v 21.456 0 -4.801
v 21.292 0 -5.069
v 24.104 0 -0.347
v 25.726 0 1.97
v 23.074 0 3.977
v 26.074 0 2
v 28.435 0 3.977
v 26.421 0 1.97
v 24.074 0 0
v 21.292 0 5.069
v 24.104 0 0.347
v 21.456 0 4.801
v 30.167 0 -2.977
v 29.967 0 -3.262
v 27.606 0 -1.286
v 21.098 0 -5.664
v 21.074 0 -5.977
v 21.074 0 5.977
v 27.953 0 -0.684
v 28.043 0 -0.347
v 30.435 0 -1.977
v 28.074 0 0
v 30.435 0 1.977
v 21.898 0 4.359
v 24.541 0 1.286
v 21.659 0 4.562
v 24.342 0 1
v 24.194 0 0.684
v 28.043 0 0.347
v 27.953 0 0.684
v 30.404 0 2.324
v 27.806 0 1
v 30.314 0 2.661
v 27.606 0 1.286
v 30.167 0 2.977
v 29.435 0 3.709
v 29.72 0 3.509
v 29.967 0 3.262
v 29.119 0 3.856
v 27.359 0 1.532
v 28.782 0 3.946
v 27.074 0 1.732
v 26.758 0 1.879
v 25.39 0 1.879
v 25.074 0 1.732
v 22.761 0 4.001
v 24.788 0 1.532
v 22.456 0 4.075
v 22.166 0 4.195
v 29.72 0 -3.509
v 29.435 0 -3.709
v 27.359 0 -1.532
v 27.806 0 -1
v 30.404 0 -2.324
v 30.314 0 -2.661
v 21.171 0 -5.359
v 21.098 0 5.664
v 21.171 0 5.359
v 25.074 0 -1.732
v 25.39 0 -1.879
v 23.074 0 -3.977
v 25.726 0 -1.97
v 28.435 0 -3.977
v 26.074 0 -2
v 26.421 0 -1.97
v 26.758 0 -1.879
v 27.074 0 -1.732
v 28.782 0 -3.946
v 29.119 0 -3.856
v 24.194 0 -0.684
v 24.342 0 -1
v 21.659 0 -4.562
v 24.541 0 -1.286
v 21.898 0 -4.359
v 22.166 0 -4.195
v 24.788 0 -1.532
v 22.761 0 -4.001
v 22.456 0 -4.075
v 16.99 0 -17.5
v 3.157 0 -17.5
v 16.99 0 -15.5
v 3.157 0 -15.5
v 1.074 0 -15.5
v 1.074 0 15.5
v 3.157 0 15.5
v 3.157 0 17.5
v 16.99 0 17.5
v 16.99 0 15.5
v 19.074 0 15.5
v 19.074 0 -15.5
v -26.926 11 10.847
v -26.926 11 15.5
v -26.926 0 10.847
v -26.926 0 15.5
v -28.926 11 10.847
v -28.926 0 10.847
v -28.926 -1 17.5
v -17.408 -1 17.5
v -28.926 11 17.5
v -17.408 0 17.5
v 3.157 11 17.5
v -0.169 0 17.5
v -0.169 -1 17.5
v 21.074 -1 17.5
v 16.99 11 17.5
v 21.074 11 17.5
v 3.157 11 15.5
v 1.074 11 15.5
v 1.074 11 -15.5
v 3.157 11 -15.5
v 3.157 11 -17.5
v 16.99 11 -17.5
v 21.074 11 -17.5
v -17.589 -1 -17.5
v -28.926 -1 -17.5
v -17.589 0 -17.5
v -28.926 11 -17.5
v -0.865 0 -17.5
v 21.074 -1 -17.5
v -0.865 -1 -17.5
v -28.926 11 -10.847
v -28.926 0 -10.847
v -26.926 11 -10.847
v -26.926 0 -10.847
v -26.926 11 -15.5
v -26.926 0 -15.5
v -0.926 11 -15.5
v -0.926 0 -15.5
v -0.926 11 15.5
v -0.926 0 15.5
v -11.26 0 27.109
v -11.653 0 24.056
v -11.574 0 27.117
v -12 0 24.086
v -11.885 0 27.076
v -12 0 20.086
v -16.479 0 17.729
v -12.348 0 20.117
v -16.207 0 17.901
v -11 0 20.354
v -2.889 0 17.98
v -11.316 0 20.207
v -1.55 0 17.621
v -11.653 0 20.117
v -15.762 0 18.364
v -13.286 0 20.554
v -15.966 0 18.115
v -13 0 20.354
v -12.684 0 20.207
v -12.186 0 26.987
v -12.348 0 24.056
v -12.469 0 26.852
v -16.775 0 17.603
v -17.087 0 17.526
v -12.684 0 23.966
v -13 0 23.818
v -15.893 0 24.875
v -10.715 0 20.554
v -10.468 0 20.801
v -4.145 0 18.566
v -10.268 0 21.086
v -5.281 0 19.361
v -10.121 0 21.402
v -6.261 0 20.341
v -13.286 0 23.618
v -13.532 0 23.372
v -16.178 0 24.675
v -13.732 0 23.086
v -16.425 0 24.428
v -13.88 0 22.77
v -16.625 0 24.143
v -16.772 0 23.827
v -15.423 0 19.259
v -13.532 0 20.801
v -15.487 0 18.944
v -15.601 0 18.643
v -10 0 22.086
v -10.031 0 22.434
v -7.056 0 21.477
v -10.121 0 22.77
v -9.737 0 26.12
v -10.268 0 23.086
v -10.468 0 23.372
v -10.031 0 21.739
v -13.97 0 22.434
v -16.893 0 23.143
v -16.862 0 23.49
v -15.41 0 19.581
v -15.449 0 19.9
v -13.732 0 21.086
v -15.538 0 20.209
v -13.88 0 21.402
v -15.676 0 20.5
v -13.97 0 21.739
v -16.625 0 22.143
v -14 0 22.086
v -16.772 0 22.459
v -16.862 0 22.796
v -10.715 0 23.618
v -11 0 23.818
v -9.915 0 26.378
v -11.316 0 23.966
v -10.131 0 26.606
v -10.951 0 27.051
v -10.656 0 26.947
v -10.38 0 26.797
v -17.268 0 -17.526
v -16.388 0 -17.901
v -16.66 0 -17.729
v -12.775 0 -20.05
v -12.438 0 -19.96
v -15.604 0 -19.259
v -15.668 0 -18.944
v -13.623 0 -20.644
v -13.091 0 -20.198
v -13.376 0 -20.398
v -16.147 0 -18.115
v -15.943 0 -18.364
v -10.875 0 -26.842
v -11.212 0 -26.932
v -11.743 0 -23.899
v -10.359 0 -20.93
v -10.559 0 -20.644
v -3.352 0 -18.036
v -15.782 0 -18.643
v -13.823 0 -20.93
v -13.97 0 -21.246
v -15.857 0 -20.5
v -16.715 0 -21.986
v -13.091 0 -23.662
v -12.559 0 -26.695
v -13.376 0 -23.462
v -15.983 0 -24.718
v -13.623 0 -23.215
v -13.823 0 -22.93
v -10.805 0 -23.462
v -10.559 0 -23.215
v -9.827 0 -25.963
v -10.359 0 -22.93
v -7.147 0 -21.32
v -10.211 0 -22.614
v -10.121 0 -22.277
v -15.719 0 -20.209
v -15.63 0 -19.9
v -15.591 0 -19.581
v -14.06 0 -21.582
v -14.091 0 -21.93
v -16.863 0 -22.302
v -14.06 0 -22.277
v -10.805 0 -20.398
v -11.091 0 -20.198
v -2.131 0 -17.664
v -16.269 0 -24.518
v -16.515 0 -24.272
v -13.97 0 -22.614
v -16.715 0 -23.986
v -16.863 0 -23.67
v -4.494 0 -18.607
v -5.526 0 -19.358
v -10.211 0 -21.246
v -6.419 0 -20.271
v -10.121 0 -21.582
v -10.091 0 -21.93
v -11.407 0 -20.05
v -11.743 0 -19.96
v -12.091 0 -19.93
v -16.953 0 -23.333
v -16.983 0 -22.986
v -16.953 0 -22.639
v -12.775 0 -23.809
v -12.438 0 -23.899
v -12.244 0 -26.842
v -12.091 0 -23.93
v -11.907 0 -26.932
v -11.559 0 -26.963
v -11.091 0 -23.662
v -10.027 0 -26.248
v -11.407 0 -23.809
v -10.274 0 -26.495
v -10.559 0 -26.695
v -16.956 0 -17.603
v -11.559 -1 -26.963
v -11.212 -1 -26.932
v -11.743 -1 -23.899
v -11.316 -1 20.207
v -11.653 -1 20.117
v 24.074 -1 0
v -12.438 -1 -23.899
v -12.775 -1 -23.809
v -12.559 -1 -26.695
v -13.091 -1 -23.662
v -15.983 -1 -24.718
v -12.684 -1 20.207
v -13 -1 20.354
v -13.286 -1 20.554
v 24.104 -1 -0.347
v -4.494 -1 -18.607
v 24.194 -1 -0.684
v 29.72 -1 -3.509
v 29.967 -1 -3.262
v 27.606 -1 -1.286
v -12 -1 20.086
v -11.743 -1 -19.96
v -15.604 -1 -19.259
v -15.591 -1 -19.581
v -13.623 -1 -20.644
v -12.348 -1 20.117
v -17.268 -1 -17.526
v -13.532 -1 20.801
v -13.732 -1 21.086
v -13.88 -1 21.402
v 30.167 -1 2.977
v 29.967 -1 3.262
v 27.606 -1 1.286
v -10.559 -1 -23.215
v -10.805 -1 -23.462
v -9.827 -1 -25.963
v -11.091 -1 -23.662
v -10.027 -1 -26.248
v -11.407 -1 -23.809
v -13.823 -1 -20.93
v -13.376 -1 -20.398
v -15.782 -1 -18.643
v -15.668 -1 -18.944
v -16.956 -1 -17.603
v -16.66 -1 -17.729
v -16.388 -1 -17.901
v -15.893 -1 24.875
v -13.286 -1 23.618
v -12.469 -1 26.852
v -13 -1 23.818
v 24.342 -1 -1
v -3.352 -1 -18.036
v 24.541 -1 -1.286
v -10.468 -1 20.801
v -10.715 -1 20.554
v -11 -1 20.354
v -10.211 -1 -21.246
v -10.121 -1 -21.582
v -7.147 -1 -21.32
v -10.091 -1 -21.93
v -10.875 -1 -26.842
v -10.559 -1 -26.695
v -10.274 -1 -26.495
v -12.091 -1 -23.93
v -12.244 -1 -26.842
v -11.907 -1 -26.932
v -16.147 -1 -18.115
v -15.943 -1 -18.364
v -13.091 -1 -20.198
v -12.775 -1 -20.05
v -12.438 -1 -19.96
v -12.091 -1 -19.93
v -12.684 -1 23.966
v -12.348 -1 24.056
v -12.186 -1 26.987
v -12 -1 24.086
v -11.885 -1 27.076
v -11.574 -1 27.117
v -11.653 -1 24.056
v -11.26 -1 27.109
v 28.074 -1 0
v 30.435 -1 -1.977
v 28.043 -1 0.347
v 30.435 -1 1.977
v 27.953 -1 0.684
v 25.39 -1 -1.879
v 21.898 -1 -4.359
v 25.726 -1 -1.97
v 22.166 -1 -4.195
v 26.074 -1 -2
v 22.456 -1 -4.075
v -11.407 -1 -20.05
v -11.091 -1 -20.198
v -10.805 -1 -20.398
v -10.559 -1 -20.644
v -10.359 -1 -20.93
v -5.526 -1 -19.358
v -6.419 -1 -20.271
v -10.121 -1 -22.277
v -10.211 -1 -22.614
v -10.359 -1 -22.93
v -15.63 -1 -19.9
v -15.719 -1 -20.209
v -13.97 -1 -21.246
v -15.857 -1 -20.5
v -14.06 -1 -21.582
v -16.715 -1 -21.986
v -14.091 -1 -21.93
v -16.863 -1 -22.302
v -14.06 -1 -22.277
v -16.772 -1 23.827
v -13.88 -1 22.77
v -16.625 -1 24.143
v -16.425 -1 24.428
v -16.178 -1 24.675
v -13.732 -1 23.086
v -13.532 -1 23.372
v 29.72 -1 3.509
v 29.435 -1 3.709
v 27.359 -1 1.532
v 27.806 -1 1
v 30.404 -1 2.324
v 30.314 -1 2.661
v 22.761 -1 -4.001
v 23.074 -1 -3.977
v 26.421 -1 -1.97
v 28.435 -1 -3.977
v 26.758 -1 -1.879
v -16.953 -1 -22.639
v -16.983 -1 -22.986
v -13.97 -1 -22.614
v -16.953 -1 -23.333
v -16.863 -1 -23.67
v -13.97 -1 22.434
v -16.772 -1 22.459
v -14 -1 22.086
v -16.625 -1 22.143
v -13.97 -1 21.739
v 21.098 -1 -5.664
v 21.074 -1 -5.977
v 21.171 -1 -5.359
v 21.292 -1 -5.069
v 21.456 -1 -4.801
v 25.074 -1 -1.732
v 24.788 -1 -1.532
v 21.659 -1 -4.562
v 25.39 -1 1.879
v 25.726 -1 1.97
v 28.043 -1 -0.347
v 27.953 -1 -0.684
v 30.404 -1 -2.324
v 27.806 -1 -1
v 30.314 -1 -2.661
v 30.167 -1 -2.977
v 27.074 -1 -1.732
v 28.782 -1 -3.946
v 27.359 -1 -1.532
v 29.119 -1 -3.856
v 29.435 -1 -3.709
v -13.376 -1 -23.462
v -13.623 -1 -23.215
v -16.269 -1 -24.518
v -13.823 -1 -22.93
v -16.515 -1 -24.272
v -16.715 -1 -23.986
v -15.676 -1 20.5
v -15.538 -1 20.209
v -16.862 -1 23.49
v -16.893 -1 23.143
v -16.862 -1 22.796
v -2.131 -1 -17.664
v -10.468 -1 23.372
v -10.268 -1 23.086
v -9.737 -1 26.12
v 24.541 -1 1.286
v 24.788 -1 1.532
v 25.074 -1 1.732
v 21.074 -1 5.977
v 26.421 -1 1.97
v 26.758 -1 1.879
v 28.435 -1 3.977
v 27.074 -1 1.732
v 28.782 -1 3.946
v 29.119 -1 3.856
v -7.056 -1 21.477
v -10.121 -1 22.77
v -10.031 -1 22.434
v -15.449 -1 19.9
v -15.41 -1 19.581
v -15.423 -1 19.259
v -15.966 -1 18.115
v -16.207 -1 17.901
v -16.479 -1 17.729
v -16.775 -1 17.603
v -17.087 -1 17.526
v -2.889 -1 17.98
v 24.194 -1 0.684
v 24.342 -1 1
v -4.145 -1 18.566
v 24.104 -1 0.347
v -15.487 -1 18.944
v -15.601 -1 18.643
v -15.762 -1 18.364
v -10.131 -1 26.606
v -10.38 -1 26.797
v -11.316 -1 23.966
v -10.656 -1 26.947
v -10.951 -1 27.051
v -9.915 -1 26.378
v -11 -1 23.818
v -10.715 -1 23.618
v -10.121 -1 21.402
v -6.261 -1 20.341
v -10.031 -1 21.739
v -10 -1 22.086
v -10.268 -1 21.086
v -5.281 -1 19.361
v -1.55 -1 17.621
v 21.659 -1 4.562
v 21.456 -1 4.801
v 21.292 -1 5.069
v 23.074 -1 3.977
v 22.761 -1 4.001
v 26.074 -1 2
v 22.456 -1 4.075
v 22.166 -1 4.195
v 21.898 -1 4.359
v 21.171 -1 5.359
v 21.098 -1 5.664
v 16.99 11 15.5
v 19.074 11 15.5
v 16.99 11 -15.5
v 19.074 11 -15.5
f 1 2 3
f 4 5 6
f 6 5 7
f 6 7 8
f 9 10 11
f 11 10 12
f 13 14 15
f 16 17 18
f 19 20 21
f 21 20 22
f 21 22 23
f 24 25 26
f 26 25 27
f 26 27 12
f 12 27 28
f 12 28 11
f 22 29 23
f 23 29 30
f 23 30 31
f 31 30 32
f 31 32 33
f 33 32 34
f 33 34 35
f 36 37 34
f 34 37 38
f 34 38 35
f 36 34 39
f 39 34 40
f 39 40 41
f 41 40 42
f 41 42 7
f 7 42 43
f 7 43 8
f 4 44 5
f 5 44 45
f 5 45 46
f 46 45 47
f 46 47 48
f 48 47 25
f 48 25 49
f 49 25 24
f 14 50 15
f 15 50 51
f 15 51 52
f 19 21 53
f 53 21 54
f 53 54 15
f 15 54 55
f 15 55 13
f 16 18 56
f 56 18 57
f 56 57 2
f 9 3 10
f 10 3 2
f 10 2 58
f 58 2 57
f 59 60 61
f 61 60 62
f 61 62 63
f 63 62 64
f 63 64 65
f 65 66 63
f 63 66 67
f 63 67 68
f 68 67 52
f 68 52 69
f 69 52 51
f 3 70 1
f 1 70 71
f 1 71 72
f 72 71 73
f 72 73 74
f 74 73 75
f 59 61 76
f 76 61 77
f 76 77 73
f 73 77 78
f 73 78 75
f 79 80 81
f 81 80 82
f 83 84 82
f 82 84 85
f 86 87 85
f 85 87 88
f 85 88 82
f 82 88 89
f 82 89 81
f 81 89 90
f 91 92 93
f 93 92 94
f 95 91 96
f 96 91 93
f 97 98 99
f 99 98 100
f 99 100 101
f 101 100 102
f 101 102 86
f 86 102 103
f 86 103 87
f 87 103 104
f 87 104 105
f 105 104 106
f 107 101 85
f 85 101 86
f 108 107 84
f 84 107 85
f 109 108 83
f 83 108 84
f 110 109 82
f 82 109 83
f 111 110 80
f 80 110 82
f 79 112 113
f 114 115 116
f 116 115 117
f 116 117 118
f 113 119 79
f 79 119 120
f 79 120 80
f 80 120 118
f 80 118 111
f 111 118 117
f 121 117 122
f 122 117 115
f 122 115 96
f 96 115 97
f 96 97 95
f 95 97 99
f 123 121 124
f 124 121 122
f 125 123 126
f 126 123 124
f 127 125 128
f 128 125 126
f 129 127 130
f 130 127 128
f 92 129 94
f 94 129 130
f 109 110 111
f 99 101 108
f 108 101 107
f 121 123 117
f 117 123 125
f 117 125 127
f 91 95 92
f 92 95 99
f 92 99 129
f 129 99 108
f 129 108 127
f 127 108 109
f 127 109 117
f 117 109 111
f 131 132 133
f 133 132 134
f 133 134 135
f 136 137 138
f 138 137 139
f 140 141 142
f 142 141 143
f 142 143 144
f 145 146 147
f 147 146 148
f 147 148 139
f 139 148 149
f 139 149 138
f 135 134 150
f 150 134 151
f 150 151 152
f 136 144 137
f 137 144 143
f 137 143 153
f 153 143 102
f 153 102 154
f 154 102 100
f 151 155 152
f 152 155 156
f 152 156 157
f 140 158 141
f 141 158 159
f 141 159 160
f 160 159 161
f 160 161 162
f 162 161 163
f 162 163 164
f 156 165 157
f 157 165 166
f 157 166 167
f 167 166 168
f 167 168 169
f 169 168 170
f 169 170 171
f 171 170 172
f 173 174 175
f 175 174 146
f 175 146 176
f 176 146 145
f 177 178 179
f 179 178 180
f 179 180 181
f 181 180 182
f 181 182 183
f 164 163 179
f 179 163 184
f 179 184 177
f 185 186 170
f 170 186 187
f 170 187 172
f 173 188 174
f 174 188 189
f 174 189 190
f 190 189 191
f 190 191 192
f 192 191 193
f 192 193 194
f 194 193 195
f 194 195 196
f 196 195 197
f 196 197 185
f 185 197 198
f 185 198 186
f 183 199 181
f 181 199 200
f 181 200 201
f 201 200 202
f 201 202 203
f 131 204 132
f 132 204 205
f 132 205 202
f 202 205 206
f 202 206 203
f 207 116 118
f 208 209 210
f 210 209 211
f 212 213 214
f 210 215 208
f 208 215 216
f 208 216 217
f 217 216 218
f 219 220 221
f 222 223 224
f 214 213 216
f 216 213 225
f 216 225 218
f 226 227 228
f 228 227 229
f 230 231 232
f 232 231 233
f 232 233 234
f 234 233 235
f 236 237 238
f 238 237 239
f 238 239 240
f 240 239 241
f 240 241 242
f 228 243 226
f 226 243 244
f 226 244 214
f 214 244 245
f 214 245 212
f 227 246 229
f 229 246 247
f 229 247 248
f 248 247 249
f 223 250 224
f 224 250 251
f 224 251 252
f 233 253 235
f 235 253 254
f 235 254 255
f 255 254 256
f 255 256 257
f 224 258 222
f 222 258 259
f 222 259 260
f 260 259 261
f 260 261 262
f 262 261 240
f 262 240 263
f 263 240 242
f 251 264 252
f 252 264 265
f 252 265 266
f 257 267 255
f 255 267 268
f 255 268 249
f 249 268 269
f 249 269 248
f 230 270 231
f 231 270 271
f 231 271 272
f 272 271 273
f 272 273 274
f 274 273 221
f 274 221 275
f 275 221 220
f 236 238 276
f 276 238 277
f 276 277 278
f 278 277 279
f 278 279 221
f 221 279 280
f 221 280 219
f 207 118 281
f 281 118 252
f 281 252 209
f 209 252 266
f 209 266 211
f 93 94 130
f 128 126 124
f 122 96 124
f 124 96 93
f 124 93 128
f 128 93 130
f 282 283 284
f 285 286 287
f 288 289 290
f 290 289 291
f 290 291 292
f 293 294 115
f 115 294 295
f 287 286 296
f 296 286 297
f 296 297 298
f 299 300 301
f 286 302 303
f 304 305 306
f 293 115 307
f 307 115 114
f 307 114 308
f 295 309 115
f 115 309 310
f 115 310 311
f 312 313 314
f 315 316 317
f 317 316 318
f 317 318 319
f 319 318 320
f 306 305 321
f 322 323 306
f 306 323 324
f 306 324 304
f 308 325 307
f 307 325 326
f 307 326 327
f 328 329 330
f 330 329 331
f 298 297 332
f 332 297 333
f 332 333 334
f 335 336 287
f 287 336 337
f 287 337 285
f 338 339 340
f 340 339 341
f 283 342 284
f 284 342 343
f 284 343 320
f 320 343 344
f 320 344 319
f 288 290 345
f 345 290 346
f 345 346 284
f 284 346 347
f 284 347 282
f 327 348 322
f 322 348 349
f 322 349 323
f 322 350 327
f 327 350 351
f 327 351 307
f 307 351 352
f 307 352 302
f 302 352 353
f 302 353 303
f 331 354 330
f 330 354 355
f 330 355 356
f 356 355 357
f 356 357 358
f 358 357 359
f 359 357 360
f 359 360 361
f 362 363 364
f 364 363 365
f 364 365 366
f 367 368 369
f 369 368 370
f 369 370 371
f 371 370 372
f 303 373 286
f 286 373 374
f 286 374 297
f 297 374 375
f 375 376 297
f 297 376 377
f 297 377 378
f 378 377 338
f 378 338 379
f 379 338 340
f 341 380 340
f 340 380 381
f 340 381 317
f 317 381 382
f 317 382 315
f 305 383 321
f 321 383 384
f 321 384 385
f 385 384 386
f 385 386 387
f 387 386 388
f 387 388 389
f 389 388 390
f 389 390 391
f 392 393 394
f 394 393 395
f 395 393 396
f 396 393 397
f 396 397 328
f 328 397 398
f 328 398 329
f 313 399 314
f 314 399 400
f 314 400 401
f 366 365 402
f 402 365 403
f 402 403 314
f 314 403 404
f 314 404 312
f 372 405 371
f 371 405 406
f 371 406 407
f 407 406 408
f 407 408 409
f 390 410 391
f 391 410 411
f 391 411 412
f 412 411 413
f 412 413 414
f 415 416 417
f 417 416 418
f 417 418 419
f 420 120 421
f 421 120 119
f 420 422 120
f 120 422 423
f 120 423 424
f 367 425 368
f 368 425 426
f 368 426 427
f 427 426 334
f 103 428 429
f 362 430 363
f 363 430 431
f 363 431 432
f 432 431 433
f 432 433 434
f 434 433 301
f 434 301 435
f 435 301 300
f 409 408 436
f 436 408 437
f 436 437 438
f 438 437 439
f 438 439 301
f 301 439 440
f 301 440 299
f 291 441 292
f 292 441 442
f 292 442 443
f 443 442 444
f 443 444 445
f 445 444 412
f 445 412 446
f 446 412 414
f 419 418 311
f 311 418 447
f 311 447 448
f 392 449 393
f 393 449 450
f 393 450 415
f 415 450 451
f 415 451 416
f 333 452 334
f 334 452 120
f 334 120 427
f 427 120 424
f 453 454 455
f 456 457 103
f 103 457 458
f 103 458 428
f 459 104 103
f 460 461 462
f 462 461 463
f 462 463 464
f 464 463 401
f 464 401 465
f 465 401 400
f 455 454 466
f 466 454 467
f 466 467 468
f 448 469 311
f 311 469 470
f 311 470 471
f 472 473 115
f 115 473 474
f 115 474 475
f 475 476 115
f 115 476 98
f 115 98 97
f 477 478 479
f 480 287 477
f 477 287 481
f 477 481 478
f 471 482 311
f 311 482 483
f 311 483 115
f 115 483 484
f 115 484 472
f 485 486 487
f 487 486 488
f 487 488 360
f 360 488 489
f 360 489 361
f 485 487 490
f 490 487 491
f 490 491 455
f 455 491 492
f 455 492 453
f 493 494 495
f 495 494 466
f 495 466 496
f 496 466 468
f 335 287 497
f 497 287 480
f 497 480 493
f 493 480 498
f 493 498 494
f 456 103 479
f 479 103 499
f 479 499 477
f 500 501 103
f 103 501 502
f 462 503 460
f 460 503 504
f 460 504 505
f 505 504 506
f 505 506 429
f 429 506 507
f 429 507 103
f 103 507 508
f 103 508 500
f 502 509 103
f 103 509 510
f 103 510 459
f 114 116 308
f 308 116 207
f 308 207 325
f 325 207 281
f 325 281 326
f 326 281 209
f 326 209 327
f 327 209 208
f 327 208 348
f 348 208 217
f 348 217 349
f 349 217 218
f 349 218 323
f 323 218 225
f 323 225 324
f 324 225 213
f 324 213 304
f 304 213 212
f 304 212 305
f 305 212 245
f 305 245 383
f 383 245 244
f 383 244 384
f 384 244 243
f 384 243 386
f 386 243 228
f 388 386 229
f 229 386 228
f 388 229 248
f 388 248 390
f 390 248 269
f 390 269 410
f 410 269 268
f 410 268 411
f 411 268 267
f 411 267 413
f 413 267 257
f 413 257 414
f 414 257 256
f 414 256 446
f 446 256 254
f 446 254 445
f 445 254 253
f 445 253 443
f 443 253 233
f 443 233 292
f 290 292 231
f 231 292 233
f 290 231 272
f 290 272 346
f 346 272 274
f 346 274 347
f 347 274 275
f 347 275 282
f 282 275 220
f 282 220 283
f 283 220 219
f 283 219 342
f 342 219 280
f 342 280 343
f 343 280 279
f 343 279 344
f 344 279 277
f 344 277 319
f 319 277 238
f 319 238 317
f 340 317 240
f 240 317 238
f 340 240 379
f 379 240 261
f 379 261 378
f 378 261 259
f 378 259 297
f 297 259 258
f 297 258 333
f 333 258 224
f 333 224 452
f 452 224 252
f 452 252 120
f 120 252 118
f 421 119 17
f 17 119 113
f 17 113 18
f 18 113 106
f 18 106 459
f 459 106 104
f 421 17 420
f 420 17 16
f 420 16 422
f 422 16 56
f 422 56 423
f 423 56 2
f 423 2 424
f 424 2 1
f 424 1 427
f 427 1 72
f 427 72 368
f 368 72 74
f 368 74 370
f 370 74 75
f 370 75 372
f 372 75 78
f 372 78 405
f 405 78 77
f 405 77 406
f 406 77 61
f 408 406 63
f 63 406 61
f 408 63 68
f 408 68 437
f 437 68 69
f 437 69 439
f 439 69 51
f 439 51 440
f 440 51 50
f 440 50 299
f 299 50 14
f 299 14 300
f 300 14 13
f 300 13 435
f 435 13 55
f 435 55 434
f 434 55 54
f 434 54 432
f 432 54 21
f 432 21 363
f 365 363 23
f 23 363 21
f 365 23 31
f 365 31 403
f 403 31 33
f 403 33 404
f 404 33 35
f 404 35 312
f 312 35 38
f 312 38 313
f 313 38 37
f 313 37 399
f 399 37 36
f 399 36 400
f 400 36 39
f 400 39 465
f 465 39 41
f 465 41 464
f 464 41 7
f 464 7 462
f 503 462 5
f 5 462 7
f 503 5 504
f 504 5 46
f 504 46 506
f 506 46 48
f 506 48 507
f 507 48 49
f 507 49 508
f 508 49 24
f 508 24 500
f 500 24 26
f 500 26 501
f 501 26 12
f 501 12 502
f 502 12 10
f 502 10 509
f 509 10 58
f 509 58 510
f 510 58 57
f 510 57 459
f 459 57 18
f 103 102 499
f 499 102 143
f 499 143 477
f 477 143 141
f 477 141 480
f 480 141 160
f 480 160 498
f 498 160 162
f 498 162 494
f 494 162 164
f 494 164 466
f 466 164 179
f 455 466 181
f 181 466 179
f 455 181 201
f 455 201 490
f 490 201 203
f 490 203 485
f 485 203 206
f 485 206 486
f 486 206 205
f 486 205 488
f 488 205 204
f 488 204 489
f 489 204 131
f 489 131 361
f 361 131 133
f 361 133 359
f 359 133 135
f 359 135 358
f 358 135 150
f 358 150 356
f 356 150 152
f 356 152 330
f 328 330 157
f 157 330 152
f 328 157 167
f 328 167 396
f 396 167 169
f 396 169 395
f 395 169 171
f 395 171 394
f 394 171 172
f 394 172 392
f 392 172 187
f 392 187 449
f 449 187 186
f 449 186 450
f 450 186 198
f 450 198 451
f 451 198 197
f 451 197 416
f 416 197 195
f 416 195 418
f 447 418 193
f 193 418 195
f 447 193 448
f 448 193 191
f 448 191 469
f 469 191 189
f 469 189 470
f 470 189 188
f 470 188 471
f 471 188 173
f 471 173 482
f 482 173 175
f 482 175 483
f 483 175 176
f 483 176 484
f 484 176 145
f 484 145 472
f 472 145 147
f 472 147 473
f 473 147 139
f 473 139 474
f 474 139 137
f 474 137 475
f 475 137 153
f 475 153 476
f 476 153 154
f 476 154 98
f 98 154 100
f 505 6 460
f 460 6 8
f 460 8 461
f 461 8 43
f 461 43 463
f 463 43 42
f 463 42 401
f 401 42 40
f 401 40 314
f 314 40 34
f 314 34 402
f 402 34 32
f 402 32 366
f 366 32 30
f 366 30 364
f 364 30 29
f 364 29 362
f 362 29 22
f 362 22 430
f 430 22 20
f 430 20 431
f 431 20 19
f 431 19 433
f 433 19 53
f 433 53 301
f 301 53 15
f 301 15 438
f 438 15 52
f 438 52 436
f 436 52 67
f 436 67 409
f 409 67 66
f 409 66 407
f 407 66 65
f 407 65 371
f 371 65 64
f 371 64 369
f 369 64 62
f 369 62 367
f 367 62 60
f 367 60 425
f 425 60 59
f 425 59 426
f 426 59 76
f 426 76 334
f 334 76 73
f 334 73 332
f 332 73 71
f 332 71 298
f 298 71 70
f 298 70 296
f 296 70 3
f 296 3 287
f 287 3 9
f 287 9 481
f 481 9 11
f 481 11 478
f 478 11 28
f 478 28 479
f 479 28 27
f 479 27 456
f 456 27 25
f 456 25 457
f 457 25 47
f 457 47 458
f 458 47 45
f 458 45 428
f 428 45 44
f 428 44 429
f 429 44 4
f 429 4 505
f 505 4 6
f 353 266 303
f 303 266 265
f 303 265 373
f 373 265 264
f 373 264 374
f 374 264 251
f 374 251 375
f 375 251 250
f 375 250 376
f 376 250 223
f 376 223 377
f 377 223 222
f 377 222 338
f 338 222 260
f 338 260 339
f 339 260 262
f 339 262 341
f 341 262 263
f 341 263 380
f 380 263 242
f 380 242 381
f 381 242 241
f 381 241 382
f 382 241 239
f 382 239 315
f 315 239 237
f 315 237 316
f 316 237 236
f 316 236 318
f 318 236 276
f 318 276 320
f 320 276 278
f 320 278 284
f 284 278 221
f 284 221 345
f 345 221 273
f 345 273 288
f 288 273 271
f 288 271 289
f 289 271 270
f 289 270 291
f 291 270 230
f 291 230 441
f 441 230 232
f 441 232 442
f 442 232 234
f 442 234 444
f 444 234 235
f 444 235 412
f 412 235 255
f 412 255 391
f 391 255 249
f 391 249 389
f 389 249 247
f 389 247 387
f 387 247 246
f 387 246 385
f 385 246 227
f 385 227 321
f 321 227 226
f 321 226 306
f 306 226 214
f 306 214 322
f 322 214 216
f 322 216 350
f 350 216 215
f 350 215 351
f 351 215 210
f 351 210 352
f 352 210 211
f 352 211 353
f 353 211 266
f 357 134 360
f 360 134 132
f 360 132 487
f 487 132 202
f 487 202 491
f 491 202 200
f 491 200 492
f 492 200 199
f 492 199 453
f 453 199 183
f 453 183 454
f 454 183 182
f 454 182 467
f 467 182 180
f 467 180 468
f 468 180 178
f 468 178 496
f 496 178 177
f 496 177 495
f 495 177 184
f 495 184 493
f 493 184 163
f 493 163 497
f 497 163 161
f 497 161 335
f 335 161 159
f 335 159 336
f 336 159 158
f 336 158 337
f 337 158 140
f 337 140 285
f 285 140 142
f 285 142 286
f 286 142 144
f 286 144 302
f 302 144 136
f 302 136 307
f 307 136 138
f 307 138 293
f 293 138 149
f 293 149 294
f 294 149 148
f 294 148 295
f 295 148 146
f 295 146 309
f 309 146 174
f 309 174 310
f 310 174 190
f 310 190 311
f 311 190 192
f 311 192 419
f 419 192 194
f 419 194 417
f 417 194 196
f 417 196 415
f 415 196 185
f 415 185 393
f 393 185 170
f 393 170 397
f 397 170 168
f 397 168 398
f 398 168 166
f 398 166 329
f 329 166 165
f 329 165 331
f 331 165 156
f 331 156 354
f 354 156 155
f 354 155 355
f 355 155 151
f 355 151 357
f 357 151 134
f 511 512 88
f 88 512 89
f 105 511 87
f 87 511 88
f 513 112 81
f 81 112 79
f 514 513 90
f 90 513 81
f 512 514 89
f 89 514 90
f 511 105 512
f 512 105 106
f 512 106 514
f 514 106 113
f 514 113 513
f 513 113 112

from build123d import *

# Parameters (mm, degrees)
BOSS_EXTRUDE1_DEPTH   = 11
BOSS_EXTRUDE1_2_DEPTH = 11
SKETCH2_R             = 2
BOSS_EXTRUDE2_DEPTH   = 1


with BuildPart() as part:
    # Sketch1 → Boss-Extrude1 (new body)
    with BuildSketch(Plane(origin=(0, 0, 0), x_dir=(1, 0, 0), z_dir=(0, 1, 0))):
        Polygon((-26.926443894, -15.5), (-0.926443894, -15.5), (-0.926443894, 15.5), (-26.926443894, 15.5), (-26.926443894, 10.846689955), (-28.926443894, 10.846689955), (-28.926443894, 17.5), (3.157388066, 17.5), (3.157388066, 15.5), (1.073556106, 15.5), (1.073556106, -15.5), (3.157388066, -15.5), (3.157388066, -17.5), (-28.926443894, -17.5), (-28.926443894, -10.846689955), (-26.926443894, -10.846689955), align=None)
    extrude(amount=BOSS_EXTRUDE1_DEPTH)



with BuildPart() as body_2:
    # Sketch1 → Boss-Extrude1 2 (new body)
    with BuildSketch(Plane(origin=(0, 0, 0), x_dir=(1, 0, 0), z_dir=(0, 1, 0))):
        Polygon((19.073556106, 15.5), (19.073556106, -15.5), (16.989724146, -15.5), (16.989724146, -17.5), (21.073556106, -17.5), (21.073556106, 17.5), (16.989724146, 17.5), (16.989724146, 15.5), align=None)
    extrude(amount=BOSS_EXTRUDE1_2_DEPTH)


with BuildPart() as part_1:
    add(part.part)

    add(body_2.part)  # Boss-Extrude2 merges body 2
    # Sketch2 → Boss-Extrude2 (add)
    with BuildSketch(Plane.XZ):
        with BuildLine():
            Line((-28.926443894, 17.5), (-17.408269171, 17.5))
            ThreePointArc((-17.408269171, 17.5), (-15.676218364, 18.5), (-15.676218364, 20.5))
            Line((-15.676218364, 20.5), (-16.624724435, 22.142860706))
            ThreePointArc((-16.624724435, 22.142860706), (-16.82452528, 23.660498796), (-15.892673627, 24.874911513))
            Line((-15.892673627, 24.874911513), (-12.469020781, 26.851558406))
            ThreePointArc((-12.469020781, 26.851558406), (-10.951382691, 27.051359251), (-9.736969974, 26.119507598))
            Line((-9.736969974, 26.119507598), (-7.056413095, 21.476646892))
            ThreePointArc((-7.056413095, 21.476646892), (-4.145305527, 18.565539323), (-0.168658635, 17.5))
            Line((-0.168658635, 17.5), (21.073556106, 17.5))
            Line((21.073556106, 17.5), (21.073556106, 5.976646892))
            ThreePointArc((21.073556106, 5.976646892), (21.659342544, 4.56243333), (23.073556106, 3.976646892))
            Line((23.073556106, 3.976646892), (28.434669863, 3.976646892))
            ThreePointArc((28.434669863, 3.976646892), (29.848883425, 3.390860454), (30.434669863, 1.976646892))
            Line((30.434669863, 1.976646892), (30.434669863, -1.976646892))
            ThreePointArc((30.434669863, -1.976646892), (29.848883425, -3.390860454), (28.434669863, -3.976646892))
            Line((28.434669863, -3.976646892), (23.073556106, -3.976646892))
            ThreePointArc((23.073556106, -3.976646892), (21.659342544, -4.56243333), (21.073556106, -5.976646892))
            Line((21.073556106, -5.976646892), (21.073556106, -17.5))
            Line((21.073556106, -17.5), (-0.864905973, -17.5))
            ThreePointArc((-0.864905973, -17.5), (-4.494457946, -18.60652774), (-7.146873061, -21.319965636))
            Line((-7.146873061, -21.319965636), (-9.827429939, -25.962826342))
            ThreePointArc((-9.827429939, -25.962826342), (-11.041842657, -26.894677994), (-12.559480747, -26.694877149))
            Line((-12.559480747, -26.694877149), (-15.983133593, -24.718230257))
            ThreePointArc((-15.983133593, -24.718230257), (-16.914985245, -23.50381754), (-16.7151844, -21.98617945))
            Line((-16.7151844, -21.98617945), (-15.857138295, -20.5))
            ThreePointArc((-15.857138295, -20.5), (-15.857138295, -18.5), (-17.589189102, -17.5))
            Line((-17.589189102, -17.5), (-28.926443894, -17.5))
            Line((-28.926443894, -17.5), (-28.926443894, 17.5))
        make_face()
        with Locations(Location((26.073556106, 0, 0), (0, 0, 270))):
            Circle(SKETCH2_R, mode=Mode.SUBTRACT)
        with Locations(Location((-12.090750291, -21.929718401, 0), (0, 0, 270))):
            Circle(SKETCH2_R, mode=Mode.SUBTRACT)
        with Locations(Location((-12.000290326, 22.086399657, 0), (0, 0, 270))):
            Circle(SKETCH2_R, mode=Mode.SUBTRACT)
    extrude(amount=BOSS_EXTRUDE2_DEPTH)


solid = part_1.part
